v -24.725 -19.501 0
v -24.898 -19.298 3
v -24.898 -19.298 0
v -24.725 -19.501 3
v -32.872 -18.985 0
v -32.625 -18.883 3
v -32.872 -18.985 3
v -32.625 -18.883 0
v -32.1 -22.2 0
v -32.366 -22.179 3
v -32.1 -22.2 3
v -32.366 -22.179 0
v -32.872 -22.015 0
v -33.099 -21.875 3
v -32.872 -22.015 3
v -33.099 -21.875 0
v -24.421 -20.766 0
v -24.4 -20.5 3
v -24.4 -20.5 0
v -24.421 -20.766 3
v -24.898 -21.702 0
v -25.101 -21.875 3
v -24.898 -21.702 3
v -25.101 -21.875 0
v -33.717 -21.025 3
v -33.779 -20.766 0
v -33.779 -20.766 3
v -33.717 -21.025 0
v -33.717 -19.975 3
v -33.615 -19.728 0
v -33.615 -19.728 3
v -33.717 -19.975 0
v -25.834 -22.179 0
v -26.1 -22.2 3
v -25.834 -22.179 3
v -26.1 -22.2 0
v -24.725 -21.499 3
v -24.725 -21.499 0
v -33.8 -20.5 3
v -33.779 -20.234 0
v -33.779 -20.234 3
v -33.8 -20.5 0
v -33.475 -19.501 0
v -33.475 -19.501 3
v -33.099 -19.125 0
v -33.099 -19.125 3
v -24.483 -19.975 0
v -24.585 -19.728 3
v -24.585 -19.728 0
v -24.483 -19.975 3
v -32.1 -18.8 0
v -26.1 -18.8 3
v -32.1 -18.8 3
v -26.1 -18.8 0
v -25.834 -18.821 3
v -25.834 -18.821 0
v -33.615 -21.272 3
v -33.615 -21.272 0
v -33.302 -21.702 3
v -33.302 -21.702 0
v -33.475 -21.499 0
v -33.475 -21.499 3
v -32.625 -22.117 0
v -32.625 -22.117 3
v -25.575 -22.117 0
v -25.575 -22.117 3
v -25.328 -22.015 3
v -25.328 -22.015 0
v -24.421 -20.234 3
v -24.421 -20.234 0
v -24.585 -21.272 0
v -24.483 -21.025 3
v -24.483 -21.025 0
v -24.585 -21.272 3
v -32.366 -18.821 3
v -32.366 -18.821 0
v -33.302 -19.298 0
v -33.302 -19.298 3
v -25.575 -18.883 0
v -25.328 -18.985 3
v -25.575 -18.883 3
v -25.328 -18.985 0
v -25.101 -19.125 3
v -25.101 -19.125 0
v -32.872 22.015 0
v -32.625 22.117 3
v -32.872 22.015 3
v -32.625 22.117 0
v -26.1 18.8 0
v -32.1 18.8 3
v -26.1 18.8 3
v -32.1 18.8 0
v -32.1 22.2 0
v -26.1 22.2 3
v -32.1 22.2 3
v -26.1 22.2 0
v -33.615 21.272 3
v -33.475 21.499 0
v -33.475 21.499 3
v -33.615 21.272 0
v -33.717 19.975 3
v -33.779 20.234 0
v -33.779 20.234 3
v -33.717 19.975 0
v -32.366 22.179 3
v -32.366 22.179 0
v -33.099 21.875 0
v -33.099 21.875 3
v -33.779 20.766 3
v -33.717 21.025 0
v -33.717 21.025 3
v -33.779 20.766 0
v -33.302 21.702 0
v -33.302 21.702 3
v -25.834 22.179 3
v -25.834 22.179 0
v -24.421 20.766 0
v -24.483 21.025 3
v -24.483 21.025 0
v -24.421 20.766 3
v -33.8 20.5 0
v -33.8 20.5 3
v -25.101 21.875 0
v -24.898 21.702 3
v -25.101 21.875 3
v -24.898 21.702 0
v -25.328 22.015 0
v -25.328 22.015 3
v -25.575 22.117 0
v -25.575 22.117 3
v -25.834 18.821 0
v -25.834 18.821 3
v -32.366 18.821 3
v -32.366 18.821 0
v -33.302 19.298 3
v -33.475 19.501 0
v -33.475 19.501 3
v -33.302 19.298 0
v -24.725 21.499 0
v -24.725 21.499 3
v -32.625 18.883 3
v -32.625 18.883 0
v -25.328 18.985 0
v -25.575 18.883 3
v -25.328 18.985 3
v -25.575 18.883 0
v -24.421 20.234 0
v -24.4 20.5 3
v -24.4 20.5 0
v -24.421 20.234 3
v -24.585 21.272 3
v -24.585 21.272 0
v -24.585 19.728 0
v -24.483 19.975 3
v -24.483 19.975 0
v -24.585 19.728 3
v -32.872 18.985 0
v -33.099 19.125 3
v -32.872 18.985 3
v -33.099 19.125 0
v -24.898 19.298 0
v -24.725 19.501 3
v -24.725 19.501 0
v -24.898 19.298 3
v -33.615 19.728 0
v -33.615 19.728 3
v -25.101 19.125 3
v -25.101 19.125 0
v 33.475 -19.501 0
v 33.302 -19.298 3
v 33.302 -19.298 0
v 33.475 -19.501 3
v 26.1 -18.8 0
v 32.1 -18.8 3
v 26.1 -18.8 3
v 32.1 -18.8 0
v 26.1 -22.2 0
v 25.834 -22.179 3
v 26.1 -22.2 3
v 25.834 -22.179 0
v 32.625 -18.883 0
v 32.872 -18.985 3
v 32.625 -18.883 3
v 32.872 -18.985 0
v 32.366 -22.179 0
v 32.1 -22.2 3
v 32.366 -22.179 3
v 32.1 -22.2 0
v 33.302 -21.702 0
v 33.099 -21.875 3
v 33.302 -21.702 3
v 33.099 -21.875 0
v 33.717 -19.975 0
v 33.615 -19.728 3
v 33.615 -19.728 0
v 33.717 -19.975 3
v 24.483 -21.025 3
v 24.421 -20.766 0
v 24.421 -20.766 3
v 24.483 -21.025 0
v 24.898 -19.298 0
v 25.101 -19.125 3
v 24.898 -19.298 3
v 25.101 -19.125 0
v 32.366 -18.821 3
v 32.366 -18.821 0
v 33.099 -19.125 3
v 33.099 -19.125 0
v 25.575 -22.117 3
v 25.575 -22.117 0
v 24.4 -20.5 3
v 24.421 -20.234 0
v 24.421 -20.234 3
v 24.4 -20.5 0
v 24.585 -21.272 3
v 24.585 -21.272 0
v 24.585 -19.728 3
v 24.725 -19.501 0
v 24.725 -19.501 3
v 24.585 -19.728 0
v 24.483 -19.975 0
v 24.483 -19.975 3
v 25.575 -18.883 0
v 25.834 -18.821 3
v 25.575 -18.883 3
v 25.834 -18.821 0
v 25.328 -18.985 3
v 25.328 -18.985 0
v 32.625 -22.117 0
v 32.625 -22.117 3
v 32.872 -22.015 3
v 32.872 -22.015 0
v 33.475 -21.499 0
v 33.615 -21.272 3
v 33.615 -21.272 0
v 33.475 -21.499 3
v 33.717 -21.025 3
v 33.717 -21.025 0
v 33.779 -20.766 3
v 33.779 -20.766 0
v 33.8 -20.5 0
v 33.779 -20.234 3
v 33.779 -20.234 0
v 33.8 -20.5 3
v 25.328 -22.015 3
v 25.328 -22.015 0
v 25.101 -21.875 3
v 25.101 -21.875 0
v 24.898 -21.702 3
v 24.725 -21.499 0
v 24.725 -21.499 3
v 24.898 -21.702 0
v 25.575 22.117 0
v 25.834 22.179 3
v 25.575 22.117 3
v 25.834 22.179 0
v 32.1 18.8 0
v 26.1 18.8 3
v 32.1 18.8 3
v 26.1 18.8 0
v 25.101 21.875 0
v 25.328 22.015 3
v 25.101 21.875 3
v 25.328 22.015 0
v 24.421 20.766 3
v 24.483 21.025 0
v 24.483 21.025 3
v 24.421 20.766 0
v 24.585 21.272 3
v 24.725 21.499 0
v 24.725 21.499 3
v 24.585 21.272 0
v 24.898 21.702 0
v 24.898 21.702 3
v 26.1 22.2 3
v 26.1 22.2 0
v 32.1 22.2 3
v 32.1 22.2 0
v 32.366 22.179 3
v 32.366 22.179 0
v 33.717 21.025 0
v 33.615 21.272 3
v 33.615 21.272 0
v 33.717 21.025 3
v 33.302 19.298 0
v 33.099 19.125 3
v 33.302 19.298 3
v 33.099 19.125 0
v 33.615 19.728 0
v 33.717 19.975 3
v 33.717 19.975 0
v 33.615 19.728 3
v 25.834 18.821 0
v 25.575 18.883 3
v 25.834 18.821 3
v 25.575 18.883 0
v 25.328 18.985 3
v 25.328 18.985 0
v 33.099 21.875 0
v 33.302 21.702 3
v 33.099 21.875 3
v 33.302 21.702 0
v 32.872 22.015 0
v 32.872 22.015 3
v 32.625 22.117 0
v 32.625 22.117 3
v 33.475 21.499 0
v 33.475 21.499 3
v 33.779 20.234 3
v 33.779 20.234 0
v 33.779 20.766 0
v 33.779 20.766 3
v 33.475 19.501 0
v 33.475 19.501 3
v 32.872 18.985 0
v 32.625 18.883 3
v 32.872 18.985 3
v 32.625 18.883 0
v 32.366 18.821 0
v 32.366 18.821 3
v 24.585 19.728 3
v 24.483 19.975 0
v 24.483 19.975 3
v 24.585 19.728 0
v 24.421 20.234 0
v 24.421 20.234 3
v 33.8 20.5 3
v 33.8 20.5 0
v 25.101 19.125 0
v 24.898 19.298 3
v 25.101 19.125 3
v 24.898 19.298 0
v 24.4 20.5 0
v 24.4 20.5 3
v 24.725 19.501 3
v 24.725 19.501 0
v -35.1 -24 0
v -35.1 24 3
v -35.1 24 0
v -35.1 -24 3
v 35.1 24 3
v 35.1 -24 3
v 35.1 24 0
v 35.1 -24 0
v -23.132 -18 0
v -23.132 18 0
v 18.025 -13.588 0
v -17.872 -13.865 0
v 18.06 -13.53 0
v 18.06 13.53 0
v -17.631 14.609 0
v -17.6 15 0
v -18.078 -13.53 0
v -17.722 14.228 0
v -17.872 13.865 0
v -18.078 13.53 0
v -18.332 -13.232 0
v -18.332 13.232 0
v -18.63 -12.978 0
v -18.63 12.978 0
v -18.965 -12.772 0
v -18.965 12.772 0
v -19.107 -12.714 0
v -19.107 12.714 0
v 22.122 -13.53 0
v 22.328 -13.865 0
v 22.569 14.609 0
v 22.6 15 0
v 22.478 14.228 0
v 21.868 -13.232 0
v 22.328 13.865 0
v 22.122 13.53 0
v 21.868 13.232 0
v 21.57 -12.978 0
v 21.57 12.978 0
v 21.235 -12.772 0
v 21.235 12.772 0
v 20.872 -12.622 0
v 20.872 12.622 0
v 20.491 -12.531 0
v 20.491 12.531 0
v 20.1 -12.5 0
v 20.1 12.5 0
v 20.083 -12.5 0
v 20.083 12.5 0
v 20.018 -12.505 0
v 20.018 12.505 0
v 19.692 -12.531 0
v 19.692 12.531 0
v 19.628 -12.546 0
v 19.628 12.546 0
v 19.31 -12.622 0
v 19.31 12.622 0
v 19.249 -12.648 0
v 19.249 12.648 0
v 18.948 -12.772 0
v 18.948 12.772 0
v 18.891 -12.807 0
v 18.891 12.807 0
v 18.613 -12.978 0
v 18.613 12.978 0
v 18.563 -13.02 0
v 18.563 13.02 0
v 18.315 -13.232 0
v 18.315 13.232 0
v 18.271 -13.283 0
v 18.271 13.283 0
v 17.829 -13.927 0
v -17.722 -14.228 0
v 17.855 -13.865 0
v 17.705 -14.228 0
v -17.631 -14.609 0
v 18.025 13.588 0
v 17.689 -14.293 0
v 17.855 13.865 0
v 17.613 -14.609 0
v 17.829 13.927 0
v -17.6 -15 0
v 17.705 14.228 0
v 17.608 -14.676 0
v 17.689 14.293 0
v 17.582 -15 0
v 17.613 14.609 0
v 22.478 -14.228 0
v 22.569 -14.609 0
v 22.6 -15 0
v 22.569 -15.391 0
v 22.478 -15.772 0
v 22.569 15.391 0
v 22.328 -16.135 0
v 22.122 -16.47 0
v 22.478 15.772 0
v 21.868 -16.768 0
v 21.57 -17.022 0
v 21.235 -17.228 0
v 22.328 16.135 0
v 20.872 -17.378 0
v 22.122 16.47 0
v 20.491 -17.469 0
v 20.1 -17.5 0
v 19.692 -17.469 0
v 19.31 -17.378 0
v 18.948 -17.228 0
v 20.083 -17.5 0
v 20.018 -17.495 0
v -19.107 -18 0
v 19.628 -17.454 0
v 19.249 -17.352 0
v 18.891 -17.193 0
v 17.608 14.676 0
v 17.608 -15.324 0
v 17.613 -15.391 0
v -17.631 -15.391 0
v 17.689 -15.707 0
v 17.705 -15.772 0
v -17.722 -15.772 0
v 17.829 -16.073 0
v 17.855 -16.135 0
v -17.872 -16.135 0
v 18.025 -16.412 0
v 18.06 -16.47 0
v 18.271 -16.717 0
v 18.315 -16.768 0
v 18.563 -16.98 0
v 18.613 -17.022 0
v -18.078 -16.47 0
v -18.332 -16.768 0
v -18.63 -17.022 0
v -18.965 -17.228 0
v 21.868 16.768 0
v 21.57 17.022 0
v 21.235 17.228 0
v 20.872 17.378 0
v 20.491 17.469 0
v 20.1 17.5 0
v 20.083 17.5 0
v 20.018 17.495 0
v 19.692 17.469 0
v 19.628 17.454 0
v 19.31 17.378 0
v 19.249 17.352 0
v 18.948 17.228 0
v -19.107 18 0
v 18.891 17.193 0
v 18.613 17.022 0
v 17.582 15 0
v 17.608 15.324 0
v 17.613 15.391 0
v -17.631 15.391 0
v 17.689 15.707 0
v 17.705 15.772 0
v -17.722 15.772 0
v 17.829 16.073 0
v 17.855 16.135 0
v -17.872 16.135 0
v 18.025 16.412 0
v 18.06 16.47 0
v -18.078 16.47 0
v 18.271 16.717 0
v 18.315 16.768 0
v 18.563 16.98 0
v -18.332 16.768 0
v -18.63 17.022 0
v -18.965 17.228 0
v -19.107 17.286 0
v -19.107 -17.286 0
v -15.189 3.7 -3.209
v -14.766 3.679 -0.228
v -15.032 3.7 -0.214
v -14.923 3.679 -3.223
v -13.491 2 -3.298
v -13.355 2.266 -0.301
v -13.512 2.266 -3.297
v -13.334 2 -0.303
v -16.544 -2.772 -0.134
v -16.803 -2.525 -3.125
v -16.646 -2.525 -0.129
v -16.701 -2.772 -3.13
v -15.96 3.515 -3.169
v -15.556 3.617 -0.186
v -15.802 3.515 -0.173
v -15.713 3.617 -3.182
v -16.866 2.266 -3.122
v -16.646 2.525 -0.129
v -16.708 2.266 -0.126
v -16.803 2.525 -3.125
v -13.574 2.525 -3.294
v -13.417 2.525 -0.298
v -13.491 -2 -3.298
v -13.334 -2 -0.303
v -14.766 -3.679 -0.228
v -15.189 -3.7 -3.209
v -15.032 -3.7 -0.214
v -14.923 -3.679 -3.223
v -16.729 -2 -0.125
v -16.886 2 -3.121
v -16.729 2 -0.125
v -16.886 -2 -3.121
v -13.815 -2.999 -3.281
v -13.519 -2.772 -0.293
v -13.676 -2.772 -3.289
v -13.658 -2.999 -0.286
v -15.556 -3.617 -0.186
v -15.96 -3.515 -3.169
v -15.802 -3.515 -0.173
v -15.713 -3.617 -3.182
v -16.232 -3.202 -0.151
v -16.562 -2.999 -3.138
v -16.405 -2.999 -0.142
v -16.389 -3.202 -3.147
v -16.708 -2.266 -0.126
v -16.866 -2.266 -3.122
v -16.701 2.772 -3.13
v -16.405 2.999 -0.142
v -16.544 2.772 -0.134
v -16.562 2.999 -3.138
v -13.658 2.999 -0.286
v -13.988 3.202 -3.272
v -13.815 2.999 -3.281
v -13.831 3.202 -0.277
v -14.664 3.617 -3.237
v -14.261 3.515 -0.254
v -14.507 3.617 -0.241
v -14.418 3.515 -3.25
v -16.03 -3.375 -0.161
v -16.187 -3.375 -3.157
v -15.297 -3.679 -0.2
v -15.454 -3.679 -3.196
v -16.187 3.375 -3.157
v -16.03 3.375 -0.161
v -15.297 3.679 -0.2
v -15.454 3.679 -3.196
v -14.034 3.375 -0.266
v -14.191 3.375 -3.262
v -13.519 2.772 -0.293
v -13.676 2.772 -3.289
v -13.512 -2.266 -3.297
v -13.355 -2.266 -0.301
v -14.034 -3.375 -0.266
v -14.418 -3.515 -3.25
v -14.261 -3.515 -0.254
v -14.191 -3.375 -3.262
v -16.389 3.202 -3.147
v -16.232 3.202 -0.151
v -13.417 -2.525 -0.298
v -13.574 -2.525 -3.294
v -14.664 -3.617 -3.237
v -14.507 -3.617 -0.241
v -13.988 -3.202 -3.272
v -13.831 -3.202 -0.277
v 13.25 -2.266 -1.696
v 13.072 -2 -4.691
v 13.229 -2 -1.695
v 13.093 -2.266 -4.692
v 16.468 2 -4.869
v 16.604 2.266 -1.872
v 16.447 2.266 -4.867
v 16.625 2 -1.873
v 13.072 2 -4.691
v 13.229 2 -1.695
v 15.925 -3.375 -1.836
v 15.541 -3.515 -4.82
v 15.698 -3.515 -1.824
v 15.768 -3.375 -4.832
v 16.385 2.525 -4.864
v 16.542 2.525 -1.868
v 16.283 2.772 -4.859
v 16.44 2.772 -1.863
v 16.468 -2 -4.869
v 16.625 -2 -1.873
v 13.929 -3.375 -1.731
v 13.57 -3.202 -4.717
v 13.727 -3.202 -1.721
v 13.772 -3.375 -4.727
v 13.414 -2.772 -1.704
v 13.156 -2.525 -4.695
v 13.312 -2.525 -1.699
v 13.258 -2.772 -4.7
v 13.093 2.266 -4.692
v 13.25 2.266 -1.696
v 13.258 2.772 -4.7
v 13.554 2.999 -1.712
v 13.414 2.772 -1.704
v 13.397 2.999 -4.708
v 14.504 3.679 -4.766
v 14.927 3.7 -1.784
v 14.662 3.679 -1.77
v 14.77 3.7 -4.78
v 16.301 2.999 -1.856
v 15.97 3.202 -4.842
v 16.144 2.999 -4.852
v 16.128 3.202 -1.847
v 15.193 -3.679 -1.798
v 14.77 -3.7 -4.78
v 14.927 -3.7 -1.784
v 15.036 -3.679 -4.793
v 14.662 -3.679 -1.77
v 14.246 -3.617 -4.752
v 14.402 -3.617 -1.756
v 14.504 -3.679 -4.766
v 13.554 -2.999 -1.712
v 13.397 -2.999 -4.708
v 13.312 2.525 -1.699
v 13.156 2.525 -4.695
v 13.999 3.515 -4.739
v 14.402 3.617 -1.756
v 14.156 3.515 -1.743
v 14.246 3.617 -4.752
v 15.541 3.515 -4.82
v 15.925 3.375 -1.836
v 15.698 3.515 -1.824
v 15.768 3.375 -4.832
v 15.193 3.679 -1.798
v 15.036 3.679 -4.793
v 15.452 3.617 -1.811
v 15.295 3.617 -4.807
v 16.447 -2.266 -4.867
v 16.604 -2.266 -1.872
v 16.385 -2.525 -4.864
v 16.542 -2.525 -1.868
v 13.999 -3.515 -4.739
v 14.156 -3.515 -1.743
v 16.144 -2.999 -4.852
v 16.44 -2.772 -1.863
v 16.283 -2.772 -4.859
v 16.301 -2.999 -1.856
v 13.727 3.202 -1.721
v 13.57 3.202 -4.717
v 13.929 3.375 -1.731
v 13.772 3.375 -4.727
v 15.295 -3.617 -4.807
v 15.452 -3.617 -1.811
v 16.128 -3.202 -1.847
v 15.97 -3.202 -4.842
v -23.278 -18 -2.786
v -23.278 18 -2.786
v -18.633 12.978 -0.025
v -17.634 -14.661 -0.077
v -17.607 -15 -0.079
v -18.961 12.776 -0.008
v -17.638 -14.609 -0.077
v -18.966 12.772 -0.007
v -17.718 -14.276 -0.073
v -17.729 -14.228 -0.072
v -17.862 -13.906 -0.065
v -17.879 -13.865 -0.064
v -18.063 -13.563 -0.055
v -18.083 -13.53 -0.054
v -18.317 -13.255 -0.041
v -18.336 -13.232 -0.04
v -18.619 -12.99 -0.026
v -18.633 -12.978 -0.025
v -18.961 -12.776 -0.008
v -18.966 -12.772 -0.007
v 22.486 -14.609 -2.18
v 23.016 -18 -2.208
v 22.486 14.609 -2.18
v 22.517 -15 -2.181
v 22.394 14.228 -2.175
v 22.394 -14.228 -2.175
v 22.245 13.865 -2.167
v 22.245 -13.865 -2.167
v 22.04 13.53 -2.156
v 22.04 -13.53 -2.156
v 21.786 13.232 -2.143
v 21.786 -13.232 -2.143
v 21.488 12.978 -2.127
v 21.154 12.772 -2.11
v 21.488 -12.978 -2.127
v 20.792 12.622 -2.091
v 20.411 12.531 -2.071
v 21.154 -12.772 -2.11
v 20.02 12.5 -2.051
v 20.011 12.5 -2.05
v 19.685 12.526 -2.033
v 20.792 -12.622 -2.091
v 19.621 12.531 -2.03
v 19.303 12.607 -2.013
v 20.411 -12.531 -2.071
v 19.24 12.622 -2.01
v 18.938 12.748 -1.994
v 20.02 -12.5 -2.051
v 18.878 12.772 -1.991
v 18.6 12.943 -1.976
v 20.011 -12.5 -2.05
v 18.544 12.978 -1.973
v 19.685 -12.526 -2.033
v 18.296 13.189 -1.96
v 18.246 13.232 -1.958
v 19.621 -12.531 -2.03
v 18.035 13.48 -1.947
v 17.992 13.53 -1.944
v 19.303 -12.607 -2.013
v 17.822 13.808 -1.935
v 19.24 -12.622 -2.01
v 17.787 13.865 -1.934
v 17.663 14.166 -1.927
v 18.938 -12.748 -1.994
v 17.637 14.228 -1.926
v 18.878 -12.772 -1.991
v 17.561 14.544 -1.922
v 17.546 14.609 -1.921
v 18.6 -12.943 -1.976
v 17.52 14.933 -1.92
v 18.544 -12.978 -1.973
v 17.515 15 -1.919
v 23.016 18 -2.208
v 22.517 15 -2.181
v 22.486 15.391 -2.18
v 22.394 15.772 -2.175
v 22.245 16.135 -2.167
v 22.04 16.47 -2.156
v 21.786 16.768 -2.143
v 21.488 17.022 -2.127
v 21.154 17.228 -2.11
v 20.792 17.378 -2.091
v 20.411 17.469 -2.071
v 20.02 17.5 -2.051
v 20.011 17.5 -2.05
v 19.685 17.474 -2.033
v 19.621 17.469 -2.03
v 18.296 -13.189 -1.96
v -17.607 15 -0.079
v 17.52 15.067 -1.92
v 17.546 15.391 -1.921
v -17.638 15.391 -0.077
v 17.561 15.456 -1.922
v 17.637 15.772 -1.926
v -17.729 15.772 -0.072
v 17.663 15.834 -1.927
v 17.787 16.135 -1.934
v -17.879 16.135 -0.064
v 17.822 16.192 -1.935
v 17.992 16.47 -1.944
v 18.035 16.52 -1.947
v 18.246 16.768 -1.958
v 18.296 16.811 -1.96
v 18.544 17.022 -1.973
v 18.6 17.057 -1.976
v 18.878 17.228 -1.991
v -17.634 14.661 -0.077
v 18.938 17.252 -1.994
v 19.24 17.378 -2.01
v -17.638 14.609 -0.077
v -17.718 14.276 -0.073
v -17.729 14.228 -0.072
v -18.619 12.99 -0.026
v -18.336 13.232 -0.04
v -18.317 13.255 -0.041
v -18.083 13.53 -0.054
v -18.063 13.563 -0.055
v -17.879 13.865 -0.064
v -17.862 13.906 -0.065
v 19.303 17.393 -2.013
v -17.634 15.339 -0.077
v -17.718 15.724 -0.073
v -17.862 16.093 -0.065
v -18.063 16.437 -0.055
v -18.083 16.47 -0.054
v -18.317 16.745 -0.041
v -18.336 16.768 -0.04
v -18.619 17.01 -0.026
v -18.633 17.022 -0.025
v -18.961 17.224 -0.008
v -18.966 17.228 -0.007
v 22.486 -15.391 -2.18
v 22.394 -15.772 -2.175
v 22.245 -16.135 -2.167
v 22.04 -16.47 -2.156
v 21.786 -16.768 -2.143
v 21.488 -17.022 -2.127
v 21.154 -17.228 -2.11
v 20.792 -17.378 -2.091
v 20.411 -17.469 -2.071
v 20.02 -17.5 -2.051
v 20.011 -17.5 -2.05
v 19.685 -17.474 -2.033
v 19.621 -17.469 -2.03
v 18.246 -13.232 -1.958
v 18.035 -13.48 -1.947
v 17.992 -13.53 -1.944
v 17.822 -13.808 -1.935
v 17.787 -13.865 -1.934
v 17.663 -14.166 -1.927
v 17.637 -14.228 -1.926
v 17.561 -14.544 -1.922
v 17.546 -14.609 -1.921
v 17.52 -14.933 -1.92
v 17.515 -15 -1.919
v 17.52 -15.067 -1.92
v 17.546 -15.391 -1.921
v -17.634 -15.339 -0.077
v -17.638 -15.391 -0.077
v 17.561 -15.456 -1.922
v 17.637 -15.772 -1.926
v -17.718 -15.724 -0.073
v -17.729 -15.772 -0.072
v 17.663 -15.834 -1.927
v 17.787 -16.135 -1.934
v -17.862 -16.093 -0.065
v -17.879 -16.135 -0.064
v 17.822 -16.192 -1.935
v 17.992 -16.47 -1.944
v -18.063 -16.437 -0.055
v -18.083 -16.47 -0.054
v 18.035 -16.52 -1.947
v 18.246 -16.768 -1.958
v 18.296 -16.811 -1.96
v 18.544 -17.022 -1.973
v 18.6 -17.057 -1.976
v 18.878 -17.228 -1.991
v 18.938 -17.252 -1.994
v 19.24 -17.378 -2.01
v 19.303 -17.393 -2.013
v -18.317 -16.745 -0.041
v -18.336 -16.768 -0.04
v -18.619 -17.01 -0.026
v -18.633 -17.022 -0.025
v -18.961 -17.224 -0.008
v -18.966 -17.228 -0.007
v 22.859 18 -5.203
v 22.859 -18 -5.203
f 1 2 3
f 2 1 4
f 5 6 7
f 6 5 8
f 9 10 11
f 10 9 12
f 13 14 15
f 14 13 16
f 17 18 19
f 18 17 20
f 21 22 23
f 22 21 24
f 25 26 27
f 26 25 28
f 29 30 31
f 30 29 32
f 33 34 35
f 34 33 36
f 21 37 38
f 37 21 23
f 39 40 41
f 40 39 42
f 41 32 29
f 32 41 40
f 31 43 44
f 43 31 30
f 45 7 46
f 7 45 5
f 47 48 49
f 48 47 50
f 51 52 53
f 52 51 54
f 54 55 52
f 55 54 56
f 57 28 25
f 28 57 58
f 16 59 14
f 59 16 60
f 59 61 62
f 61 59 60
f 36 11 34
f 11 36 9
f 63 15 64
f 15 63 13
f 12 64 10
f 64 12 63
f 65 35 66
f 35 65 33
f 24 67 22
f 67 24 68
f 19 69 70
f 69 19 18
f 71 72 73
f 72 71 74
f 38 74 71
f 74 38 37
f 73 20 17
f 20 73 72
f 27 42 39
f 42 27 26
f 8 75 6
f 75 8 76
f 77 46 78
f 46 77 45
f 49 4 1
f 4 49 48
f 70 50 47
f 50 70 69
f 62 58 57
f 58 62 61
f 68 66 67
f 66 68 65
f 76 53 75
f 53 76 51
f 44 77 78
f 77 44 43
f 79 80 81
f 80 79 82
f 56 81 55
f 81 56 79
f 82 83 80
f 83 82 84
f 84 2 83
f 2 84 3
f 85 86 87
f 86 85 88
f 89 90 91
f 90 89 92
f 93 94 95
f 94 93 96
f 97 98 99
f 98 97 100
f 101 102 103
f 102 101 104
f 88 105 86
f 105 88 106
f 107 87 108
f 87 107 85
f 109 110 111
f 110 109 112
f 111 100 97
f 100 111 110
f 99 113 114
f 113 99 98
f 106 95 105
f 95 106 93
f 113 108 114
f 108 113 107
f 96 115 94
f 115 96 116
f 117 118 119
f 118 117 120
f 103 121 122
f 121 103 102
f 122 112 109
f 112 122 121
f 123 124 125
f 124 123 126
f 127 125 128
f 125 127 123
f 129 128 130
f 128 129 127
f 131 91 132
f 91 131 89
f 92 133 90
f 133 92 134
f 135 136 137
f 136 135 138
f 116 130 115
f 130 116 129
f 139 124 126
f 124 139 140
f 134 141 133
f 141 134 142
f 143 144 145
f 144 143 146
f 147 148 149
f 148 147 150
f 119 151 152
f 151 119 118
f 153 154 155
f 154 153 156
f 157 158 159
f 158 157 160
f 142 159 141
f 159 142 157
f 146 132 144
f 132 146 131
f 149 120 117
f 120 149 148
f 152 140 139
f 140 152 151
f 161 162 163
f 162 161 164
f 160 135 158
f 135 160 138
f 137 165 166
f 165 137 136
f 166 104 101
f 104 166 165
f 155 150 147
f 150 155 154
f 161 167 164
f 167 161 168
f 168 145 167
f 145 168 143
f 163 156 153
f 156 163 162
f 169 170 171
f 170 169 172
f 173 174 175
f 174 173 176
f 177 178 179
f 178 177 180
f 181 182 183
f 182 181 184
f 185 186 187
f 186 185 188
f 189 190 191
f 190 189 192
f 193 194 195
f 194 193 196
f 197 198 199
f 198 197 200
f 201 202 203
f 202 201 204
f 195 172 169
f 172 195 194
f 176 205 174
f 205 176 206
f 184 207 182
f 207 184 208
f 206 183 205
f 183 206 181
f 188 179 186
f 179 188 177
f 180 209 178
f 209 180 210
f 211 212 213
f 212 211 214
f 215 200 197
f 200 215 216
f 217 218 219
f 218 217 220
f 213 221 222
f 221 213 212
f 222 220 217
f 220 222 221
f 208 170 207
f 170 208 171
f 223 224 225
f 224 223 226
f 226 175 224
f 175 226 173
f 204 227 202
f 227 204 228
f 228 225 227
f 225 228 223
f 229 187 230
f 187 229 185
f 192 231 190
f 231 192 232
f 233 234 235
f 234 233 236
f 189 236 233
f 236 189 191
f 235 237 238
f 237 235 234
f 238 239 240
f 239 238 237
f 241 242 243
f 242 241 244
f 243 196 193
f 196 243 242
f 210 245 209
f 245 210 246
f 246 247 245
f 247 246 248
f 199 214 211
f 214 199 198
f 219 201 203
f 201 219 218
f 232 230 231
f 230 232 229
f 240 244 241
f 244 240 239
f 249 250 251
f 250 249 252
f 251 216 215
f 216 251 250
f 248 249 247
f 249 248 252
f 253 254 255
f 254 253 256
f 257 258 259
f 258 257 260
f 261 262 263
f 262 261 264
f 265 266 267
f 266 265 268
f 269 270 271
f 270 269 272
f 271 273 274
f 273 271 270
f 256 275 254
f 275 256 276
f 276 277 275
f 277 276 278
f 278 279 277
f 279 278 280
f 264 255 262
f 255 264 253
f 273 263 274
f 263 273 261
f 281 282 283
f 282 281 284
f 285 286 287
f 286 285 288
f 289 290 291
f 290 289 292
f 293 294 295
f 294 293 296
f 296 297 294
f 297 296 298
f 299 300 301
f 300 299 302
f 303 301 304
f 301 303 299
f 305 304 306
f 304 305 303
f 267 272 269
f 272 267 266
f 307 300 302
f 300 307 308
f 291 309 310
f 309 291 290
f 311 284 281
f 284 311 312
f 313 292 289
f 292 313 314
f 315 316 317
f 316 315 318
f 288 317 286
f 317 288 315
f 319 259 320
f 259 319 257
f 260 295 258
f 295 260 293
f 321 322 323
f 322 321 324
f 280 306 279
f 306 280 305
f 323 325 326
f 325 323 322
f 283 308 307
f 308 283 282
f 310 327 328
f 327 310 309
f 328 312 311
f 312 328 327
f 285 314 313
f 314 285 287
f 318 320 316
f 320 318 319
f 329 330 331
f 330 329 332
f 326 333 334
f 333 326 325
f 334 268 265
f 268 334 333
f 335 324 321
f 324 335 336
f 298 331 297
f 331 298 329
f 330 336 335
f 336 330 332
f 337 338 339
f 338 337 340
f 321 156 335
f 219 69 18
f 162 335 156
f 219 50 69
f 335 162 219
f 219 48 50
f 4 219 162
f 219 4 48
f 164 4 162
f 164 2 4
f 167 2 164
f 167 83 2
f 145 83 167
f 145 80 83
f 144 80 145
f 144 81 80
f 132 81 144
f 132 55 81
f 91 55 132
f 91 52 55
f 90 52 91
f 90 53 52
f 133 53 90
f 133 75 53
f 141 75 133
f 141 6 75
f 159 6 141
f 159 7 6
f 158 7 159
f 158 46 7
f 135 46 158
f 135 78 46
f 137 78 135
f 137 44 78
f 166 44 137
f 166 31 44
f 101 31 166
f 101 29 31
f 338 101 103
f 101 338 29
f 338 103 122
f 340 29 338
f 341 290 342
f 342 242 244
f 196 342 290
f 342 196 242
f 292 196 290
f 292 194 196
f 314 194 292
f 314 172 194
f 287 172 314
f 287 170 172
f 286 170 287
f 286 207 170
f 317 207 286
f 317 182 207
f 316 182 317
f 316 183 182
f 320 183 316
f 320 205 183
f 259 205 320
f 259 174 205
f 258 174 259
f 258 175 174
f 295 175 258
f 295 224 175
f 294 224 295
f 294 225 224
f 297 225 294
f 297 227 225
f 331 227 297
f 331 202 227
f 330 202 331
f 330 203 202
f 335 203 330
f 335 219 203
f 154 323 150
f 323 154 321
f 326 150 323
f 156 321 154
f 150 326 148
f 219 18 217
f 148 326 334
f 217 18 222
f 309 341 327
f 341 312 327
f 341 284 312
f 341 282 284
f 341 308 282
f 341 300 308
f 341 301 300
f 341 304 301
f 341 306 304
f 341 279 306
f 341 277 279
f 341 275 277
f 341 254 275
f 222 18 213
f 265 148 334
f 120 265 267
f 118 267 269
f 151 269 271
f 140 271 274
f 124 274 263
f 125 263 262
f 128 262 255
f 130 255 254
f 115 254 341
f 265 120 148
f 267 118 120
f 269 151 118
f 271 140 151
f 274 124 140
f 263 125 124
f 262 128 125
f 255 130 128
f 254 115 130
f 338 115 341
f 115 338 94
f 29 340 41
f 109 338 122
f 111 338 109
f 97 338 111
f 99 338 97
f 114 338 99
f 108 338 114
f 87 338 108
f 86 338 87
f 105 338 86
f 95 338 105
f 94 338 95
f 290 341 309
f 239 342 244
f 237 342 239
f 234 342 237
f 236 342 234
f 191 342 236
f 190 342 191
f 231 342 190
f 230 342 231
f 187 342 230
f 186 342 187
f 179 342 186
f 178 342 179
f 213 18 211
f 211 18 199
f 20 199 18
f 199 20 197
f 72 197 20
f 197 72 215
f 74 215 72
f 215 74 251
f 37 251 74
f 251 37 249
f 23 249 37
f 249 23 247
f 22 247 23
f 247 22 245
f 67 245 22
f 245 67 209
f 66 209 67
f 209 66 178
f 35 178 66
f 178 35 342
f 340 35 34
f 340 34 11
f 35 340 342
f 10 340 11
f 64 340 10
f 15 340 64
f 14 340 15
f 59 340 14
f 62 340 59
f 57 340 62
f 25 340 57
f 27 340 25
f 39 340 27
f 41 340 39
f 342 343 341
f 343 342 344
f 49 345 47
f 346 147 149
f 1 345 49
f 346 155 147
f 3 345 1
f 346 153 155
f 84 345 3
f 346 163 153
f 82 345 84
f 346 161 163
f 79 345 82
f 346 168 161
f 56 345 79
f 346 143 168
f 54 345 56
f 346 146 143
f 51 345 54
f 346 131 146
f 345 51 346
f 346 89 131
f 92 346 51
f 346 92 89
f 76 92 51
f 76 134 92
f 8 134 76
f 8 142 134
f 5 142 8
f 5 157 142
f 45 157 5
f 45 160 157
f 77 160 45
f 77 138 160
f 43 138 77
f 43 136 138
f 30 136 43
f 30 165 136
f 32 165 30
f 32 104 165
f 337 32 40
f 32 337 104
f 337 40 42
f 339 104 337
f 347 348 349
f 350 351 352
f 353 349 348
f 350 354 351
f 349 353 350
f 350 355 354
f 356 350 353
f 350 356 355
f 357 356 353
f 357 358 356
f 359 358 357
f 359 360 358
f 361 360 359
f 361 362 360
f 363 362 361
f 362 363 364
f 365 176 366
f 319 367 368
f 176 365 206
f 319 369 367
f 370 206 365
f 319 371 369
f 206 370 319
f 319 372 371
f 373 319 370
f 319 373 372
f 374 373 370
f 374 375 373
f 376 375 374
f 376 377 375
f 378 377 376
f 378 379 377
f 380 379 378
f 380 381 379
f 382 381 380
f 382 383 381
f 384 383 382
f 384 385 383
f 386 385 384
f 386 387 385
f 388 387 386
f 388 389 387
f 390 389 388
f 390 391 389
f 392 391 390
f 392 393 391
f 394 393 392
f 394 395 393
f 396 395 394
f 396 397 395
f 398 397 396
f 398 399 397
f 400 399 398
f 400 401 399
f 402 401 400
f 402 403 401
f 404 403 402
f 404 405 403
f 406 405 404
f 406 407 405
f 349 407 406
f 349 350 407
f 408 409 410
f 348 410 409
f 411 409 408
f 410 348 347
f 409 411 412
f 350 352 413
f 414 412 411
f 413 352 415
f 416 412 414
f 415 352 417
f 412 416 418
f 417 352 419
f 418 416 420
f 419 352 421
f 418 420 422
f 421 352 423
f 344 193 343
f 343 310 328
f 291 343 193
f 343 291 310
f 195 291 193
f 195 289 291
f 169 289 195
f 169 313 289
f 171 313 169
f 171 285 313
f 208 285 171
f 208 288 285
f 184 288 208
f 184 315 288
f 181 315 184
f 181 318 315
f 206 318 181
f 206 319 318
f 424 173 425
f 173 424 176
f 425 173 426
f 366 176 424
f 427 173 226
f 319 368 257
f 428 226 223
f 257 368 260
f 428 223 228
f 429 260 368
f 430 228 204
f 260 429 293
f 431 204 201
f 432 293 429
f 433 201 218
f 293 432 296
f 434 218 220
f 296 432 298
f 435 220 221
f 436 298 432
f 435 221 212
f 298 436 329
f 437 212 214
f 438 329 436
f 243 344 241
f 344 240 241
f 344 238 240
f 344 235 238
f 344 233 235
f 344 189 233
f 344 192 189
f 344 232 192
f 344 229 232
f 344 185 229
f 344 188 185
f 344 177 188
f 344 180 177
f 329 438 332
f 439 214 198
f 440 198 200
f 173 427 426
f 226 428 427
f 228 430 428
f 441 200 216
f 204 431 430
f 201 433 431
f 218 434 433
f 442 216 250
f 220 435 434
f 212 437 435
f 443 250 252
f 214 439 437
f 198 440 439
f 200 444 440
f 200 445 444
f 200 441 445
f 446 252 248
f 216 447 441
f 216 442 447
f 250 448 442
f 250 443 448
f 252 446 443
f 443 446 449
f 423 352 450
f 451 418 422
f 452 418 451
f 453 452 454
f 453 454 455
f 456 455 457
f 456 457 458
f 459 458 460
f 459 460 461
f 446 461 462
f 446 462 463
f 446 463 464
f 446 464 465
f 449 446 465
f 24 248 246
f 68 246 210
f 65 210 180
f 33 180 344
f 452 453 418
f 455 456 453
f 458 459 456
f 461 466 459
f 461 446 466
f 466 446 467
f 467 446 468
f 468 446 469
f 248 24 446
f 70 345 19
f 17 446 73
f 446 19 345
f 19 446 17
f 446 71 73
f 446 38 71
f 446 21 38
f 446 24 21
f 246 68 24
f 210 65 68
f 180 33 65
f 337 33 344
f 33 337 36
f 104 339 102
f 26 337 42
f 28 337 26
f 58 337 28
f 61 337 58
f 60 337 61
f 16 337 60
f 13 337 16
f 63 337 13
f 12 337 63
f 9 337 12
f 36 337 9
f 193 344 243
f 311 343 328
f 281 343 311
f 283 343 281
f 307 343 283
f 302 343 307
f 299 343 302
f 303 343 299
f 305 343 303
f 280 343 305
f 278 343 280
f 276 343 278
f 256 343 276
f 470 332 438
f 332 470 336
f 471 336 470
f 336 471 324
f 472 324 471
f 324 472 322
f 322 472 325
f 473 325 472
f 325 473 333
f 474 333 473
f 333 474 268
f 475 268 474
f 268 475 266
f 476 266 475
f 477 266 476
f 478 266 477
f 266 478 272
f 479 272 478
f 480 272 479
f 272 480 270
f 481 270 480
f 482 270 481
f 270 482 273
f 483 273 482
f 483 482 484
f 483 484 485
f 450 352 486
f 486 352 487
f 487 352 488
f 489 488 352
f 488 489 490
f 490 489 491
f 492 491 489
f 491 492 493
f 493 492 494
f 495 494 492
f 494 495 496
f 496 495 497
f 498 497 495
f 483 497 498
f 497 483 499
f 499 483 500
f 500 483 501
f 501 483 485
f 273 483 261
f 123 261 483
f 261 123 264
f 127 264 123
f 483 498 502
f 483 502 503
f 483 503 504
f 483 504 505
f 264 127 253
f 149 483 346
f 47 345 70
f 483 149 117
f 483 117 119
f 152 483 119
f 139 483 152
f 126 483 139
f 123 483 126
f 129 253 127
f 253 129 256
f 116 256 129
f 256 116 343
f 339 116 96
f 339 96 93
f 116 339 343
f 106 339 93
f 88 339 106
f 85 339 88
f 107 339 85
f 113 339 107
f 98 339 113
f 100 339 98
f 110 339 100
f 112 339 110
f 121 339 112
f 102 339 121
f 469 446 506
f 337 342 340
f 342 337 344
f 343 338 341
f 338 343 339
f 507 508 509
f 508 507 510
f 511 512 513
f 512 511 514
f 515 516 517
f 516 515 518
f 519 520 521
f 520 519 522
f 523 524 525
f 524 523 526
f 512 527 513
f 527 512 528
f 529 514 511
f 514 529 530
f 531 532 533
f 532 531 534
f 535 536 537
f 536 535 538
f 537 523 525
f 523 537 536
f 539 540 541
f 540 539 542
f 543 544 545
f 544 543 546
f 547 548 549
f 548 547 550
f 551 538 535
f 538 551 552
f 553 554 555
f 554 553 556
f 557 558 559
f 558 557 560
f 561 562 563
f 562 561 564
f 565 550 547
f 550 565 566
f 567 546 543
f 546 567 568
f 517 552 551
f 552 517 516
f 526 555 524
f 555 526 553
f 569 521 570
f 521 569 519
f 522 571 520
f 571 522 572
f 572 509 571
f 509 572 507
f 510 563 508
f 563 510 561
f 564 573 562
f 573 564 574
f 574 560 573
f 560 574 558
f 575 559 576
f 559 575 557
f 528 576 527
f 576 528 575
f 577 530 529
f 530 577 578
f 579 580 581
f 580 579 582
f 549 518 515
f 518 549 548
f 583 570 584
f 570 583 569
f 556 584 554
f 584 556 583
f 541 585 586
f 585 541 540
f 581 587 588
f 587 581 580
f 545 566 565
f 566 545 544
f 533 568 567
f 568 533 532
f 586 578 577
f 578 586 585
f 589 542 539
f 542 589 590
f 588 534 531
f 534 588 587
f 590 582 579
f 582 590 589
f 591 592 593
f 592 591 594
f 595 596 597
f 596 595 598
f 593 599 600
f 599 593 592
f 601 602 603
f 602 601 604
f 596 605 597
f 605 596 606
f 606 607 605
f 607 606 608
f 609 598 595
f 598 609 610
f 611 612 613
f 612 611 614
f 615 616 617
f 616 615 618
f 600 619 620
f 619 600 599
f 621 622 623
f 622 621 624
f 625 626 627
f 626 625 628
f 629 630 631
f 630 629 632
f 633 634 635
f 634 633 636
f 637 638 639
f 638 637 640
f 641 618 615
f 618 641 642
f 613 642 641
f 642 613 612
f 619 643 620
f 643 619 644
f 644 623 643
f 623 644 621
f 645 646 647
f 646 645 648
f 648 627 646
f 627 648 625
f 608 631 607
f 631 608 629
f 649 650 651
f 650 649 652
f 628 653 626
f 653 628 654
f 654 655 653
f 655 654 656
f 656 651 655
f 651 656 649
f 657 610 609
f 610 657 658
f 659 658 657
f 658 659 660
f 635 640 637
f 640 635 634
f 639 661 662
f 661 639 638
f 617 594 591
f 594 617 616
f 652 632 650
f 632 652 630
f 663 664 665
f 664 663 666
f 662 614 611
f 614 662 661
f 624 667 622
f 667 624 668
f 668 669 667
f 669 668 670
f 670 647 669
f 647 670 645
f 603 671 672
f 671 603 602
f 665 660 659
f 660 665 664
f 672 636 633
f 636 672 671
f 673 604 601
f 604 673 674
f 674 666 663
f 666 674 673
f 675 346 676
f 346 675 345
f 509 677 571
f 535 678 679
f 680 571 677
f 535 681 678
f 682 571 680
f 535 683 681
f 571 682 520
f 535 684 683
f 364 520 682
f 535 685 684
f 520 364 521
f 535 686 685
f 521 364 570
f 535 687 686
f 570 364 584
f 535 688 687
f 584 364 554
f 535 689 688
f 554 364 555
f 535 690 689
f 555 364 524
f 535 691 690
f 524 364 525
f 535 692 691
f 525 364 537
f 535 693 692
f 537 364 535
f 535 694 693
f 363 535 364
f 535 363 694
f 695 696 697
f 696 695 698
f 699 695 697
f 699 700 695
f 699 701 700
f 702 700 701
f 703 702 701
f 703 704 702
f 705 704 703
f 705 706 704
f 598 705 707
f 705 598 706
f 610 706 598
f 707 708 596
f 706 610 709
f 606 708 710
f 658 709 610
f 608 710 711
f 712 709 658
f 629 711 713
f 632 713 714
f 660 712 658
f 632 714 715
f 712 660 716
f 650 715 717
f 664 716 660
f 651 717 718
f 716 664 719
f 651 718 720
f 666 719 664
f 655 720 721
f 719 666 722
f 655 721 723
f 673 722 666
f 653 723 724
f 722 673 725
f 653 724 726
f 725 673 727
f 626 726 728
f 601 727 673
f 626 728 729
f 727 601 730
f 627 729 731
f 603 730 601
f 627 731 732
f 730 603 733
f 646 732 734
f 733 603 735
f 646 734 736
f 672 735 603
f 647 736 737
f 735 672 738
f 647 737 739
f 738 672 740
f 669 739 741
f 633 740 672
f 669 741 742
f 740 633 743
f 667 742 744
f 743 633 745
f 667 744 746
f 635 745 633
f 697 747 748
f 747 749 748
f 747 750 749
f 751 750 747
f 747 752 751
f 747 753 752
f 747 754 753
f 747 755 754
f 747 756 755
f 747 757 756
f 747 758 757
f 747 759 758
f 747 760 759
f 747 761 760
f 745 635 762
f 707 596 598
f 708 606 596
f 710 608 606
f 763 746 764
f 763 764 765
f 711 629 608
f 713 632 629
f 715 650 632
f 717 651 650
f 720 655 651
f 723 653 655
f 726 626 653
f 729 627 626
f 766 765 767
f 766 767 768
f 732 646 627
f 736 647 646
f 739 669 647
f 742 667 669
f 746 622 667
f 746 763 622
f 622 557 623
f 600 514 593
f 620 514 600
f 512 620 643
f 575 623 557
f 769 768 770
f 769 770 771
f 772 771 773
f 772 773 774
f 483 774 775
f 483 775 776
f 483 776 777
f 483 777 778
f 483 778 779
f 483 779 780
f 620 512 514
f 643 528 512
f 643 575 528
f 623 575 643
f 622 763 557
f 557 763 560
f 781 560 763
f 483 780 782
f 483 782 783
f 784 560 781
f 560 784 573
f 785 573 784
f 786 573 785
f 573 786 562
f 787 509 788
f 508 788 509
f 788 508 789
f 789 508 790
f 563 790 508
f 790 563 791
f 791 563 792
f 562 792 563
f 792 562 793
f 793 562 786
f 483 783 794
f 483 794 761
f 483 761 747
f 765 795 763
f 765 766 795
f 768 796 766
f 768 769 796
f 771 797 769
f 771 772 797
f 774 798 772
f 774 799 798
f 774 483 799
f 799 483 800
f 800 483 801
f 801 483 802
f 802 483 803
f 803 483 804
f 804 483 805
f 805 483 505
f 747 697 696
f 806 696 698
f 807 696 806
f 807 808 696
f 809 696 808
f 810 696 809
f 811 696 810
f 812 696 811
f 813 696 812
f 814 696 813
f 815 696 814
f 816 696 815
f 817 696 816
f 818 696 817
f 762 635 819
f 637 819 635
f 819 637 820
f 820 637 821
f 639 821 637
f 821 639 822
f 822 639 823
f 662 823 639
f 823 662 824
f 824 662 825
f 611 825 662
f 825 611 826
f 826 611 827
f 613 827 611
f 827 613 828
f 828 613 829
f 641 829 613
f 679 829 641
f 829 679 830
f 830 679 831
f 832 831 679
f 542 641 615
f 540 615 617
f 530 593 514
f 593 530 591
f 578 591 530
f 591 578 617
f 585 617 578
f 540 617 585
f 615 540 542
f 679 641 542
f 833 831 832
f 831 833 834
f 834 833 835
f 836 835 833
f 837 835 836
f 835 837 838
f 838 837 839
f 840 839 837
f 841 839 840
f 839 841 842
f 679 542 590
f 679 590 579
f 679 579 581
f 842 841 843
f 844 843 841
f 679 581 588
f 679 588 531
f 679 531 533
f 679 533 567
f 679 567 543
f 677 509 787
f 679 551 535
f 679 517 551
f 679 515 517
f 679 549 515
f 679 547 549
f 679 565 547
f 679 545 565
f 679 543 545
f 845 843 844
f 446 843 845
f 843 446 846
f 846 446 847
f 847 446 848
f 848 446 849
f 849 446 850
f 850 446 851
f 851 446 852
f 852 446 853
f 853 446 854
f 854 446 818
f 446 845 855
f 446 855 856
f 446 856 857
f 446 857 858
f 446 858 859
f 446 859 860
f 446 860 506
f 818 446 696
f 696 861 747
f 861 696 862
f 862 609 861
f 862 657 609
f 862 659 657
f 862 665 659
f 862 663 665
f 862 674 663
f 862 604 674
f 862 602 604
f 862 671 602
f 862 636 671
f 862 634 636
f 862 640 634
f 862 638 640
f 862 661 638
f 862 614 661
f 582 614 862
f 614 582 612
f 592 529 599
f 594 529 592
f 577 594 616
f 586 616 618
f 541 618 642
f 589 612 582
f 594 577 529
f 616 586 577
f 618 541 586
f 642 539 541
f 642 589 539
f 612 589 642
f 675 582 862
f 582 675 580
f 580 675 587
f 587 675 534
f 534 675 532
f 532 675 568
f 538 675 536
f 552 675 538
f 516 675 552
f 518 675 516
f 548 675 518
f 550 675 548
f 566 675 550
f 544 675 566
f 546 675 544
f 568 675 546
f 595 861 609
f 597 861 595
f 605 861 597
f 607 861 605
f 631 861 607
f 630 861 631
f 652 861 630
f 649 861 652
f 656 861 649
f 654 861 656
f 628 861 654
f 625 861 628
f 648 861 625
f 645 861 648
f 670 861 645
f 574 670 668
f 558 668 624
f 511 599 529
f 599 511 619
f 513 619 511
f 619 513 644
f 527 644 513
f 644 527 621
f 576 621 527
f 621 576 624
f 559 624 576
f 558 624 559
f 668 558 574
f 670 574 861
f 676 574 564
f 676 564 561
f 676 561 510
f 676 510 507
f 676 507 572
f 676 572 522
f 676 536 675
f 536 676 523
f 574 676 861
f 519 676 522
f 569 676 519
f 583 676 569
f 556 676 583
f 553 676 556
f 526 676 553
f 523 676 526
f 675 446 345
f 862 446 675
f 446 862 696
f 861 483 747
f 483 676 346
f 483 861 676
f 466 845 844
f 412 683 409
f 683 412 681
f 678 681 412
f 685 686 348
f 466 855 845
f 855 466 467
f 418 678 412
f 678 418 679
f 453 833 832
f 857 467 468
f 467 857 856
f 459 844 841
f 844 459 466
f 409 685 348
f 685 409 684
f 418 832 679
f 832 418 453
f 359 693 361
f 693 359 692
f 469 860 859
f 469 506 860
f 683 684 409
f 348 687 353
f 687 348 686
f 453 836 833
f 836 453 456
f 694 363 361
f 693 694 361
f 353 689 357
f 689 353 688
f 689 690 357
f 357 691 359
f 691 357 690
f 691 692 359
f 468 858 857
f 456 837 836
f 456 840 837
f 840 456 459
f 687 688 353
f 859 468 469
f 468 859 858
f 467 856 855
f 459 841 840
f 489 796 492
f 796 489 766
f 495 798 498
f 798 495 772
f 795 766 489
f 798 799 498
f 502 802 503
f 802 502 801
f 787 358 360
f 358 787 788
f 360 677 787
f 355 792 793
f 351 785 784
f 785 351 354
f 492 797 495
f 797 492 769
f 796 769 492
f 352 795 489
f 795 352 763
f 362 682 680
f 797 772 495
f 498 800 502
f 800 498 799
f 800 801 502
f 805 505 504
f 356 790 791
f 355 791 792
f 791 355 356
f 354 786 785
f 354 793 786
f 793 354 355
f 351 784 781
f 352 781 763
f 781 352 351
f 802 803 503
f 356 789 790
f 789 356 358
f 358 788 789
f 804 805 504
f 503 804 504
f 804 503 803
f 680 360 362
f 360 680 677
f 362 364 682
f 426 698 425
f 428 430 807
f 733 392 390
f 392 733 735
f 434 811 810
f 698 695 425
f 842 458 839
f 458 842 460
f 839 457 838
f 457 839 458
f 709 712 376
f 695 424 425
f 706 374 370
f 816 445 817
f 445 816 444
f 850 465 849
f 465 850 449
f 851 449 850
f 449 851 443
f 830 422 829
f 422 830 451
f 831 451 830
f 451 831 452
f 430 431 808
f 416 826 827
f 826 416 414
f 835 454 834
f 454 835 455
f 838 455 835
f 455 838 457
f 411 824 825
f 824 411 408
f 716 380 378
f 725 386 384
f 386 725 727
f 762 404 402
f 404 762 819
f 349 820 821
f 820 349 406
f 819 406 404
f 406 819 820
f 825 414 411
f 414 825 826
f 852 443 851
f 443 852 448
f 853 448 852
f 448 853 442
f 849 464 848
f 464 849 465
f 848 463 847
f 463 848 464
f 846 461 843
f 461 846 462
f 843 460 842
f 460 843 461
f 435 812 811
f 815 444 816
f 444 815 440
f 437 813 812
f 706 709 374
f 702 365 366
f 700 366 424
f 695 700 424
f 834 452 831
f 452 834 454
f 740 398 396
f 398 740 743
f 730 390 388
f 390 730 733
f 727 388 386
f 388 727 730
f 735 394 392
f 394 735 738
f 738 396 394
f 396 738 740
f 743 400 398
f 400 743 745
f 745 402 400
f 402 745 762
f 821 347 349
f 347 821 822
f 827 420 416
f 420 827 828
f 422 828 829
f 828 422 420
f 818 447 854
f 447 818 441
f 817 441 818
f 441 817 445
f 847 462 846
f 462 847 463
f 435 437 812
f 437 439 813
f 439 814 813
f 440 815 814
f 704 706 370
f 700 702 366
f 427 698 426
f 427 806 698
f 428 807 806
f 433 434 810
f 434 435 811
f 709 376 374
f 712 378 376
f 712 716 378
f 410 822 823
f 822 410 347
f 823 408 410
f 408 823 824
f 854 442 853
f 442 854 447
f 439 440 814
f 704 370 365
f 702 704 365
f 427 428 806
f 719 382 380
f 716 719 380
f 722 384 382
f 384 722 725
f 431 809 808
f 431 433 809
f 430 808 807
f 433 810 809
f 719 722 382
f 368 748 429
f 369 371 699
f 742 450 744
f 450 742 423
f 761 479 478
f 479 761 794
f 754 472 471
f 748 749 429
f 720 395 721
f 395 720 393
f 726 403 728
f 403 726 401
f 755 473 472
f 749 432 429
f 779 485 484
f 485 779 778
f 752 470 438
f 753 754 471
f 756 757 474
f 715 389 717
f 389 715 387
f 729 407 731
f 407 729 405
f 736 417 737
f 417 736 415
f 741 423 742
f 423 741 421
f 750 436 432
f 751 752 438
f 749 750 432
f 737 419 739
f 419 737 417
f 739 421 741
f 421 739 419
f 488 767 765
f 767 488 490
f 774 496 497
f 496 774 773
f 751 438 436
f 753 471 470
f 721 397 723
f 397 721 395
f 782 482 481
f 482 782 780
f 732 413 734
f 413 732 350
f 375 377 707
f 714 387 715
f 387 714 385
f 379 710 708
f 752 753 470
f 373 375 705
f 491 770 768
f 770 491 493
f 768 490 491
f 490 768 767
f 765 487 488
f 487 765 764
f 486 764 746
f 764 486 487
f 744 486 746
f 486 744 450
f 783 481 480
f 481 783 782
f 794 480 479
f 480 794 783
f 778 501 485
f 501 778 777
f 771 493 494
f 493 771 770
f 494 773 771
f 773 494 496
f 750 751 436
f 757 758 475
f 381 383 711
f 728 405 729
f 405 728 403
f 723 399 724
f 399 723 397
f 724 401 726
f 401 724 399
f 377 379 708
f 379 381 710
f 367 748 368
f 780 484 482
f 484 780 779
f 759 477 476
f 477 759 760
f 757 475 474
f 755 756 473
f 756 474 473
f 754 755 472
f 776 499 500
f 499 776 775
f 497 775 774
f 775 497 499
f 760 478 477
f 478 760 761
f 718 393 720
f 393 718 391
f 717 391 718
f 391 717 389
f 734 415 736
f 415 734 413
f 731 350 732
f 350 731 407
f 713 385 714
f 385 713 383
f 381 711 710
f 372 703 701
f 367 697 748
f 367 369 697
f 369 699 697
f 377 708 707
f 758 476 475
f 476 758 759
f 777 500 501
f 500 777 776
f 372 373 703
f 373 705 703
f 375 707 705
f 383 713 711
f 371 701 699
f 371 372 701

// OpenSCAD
// Soporte del TF03 al chasis, versión "colgante" para el TF03 REAL de las fotos 14-18. COMPILADO (OpenSCAD 2021.01), NO IMPRESO.
// Ejes: X = adelante, Y = izquierda, Z = arriba. El TF03 cuelga DEBAJO de esta placa, atornillado por su propia placa con
// ranura (riel) o por sus agujeros de arriba, como hoy en el pod. La placa de arriba se sujeta al chasis con 4 ranuras M3.
// `cabeceo_deg` = inclinación del TF03 respecto al plano del chasis (D-064: −3°, nariz hacia abajo; el signo está por probar).
//
// TODO LO MARCADO PENDIENTE son valores de RELLENO, no medidas: se miden con calibrador (ver ESTADO_IMPRESION.md).
$fn = 40;
tf03_largo = 77;        // PENDIENTE (largo del TF03 a lo largo de la mirada; hoja de datos de memoria)
tf03_ancho = 40;        // PENDIENTE
riel_sep = 30;          // PENDIENTE: distancia entre los dos tornillos del riel del TF03
riel_eje = "X";         // PENDIENTE: la ranura del TF03 va a lo largo de X o de Y
tornillo_d = 3.4;       // PENDIENTE: M3
cabeceo_deg = -3;
t = 3;
L = max(tf03_largo * 0.6, riel_sep + 16) ;
W = max(tf03_ancho * 0.8, 36);
cuna_h = 8;             // altura de la cuña bajo el borde del frente (se calcula con el cabeceo)

module ranuras(sep, h, eje) {
    for (s = [-1, 1]) rotate([0, 0, eje == "X" ? 0 : 90]) translate([s * sep/2, 0, 0])
        hull() for (dy = [-2, 2]) translate([0, dy, -1]) cylinder(d = tornillo_d, h = h + 2);
}
union() {
    // placa al chasis
    difference() {
        translate([-L/2 - 12, -W/2 - 6, 0]) cube([L + 24, W + 12, t]);
        for (sx = [-1, 1]) for (sy = [-1, 1]) hull() for (dx = [-3, 3])
            translate([sx * (L/2 + 6) + dx, sy * (W/2 + 2.5), -1]) cylinder(d = 3.4, h = t + 2);
    }
    // placa inclinada que lleva el TF03 (colgado debajo), unida por una cuña
    translate([0, 0, 0]) rotate([0, -cabeceo_deg, 0]) translate([0, 0, -t - 1]) difference() {
        translate([-L/2, -W/2, 0]) cube([L, W, t]);
        translate([0, 0, 0]) ranuras(riel_sep, t, riel_eje);
    }
    // columnas de unión (a las esquinas de las dos placas)
    for (sx = [-1, 1]) for (sy = [-1, 1]) hull() {
        translate([sx * (L/2 - 3), sy * (W/2 - 3), 0]) cylinder(d = 5, h = 0.5);
        rotate([0, -cabeceo_deg, 0]) translate([sx * (L/2 - 3), sy * (W/2 - 3), -1.5]) cylinder(d = 5, h = 0.5);
    }
}
